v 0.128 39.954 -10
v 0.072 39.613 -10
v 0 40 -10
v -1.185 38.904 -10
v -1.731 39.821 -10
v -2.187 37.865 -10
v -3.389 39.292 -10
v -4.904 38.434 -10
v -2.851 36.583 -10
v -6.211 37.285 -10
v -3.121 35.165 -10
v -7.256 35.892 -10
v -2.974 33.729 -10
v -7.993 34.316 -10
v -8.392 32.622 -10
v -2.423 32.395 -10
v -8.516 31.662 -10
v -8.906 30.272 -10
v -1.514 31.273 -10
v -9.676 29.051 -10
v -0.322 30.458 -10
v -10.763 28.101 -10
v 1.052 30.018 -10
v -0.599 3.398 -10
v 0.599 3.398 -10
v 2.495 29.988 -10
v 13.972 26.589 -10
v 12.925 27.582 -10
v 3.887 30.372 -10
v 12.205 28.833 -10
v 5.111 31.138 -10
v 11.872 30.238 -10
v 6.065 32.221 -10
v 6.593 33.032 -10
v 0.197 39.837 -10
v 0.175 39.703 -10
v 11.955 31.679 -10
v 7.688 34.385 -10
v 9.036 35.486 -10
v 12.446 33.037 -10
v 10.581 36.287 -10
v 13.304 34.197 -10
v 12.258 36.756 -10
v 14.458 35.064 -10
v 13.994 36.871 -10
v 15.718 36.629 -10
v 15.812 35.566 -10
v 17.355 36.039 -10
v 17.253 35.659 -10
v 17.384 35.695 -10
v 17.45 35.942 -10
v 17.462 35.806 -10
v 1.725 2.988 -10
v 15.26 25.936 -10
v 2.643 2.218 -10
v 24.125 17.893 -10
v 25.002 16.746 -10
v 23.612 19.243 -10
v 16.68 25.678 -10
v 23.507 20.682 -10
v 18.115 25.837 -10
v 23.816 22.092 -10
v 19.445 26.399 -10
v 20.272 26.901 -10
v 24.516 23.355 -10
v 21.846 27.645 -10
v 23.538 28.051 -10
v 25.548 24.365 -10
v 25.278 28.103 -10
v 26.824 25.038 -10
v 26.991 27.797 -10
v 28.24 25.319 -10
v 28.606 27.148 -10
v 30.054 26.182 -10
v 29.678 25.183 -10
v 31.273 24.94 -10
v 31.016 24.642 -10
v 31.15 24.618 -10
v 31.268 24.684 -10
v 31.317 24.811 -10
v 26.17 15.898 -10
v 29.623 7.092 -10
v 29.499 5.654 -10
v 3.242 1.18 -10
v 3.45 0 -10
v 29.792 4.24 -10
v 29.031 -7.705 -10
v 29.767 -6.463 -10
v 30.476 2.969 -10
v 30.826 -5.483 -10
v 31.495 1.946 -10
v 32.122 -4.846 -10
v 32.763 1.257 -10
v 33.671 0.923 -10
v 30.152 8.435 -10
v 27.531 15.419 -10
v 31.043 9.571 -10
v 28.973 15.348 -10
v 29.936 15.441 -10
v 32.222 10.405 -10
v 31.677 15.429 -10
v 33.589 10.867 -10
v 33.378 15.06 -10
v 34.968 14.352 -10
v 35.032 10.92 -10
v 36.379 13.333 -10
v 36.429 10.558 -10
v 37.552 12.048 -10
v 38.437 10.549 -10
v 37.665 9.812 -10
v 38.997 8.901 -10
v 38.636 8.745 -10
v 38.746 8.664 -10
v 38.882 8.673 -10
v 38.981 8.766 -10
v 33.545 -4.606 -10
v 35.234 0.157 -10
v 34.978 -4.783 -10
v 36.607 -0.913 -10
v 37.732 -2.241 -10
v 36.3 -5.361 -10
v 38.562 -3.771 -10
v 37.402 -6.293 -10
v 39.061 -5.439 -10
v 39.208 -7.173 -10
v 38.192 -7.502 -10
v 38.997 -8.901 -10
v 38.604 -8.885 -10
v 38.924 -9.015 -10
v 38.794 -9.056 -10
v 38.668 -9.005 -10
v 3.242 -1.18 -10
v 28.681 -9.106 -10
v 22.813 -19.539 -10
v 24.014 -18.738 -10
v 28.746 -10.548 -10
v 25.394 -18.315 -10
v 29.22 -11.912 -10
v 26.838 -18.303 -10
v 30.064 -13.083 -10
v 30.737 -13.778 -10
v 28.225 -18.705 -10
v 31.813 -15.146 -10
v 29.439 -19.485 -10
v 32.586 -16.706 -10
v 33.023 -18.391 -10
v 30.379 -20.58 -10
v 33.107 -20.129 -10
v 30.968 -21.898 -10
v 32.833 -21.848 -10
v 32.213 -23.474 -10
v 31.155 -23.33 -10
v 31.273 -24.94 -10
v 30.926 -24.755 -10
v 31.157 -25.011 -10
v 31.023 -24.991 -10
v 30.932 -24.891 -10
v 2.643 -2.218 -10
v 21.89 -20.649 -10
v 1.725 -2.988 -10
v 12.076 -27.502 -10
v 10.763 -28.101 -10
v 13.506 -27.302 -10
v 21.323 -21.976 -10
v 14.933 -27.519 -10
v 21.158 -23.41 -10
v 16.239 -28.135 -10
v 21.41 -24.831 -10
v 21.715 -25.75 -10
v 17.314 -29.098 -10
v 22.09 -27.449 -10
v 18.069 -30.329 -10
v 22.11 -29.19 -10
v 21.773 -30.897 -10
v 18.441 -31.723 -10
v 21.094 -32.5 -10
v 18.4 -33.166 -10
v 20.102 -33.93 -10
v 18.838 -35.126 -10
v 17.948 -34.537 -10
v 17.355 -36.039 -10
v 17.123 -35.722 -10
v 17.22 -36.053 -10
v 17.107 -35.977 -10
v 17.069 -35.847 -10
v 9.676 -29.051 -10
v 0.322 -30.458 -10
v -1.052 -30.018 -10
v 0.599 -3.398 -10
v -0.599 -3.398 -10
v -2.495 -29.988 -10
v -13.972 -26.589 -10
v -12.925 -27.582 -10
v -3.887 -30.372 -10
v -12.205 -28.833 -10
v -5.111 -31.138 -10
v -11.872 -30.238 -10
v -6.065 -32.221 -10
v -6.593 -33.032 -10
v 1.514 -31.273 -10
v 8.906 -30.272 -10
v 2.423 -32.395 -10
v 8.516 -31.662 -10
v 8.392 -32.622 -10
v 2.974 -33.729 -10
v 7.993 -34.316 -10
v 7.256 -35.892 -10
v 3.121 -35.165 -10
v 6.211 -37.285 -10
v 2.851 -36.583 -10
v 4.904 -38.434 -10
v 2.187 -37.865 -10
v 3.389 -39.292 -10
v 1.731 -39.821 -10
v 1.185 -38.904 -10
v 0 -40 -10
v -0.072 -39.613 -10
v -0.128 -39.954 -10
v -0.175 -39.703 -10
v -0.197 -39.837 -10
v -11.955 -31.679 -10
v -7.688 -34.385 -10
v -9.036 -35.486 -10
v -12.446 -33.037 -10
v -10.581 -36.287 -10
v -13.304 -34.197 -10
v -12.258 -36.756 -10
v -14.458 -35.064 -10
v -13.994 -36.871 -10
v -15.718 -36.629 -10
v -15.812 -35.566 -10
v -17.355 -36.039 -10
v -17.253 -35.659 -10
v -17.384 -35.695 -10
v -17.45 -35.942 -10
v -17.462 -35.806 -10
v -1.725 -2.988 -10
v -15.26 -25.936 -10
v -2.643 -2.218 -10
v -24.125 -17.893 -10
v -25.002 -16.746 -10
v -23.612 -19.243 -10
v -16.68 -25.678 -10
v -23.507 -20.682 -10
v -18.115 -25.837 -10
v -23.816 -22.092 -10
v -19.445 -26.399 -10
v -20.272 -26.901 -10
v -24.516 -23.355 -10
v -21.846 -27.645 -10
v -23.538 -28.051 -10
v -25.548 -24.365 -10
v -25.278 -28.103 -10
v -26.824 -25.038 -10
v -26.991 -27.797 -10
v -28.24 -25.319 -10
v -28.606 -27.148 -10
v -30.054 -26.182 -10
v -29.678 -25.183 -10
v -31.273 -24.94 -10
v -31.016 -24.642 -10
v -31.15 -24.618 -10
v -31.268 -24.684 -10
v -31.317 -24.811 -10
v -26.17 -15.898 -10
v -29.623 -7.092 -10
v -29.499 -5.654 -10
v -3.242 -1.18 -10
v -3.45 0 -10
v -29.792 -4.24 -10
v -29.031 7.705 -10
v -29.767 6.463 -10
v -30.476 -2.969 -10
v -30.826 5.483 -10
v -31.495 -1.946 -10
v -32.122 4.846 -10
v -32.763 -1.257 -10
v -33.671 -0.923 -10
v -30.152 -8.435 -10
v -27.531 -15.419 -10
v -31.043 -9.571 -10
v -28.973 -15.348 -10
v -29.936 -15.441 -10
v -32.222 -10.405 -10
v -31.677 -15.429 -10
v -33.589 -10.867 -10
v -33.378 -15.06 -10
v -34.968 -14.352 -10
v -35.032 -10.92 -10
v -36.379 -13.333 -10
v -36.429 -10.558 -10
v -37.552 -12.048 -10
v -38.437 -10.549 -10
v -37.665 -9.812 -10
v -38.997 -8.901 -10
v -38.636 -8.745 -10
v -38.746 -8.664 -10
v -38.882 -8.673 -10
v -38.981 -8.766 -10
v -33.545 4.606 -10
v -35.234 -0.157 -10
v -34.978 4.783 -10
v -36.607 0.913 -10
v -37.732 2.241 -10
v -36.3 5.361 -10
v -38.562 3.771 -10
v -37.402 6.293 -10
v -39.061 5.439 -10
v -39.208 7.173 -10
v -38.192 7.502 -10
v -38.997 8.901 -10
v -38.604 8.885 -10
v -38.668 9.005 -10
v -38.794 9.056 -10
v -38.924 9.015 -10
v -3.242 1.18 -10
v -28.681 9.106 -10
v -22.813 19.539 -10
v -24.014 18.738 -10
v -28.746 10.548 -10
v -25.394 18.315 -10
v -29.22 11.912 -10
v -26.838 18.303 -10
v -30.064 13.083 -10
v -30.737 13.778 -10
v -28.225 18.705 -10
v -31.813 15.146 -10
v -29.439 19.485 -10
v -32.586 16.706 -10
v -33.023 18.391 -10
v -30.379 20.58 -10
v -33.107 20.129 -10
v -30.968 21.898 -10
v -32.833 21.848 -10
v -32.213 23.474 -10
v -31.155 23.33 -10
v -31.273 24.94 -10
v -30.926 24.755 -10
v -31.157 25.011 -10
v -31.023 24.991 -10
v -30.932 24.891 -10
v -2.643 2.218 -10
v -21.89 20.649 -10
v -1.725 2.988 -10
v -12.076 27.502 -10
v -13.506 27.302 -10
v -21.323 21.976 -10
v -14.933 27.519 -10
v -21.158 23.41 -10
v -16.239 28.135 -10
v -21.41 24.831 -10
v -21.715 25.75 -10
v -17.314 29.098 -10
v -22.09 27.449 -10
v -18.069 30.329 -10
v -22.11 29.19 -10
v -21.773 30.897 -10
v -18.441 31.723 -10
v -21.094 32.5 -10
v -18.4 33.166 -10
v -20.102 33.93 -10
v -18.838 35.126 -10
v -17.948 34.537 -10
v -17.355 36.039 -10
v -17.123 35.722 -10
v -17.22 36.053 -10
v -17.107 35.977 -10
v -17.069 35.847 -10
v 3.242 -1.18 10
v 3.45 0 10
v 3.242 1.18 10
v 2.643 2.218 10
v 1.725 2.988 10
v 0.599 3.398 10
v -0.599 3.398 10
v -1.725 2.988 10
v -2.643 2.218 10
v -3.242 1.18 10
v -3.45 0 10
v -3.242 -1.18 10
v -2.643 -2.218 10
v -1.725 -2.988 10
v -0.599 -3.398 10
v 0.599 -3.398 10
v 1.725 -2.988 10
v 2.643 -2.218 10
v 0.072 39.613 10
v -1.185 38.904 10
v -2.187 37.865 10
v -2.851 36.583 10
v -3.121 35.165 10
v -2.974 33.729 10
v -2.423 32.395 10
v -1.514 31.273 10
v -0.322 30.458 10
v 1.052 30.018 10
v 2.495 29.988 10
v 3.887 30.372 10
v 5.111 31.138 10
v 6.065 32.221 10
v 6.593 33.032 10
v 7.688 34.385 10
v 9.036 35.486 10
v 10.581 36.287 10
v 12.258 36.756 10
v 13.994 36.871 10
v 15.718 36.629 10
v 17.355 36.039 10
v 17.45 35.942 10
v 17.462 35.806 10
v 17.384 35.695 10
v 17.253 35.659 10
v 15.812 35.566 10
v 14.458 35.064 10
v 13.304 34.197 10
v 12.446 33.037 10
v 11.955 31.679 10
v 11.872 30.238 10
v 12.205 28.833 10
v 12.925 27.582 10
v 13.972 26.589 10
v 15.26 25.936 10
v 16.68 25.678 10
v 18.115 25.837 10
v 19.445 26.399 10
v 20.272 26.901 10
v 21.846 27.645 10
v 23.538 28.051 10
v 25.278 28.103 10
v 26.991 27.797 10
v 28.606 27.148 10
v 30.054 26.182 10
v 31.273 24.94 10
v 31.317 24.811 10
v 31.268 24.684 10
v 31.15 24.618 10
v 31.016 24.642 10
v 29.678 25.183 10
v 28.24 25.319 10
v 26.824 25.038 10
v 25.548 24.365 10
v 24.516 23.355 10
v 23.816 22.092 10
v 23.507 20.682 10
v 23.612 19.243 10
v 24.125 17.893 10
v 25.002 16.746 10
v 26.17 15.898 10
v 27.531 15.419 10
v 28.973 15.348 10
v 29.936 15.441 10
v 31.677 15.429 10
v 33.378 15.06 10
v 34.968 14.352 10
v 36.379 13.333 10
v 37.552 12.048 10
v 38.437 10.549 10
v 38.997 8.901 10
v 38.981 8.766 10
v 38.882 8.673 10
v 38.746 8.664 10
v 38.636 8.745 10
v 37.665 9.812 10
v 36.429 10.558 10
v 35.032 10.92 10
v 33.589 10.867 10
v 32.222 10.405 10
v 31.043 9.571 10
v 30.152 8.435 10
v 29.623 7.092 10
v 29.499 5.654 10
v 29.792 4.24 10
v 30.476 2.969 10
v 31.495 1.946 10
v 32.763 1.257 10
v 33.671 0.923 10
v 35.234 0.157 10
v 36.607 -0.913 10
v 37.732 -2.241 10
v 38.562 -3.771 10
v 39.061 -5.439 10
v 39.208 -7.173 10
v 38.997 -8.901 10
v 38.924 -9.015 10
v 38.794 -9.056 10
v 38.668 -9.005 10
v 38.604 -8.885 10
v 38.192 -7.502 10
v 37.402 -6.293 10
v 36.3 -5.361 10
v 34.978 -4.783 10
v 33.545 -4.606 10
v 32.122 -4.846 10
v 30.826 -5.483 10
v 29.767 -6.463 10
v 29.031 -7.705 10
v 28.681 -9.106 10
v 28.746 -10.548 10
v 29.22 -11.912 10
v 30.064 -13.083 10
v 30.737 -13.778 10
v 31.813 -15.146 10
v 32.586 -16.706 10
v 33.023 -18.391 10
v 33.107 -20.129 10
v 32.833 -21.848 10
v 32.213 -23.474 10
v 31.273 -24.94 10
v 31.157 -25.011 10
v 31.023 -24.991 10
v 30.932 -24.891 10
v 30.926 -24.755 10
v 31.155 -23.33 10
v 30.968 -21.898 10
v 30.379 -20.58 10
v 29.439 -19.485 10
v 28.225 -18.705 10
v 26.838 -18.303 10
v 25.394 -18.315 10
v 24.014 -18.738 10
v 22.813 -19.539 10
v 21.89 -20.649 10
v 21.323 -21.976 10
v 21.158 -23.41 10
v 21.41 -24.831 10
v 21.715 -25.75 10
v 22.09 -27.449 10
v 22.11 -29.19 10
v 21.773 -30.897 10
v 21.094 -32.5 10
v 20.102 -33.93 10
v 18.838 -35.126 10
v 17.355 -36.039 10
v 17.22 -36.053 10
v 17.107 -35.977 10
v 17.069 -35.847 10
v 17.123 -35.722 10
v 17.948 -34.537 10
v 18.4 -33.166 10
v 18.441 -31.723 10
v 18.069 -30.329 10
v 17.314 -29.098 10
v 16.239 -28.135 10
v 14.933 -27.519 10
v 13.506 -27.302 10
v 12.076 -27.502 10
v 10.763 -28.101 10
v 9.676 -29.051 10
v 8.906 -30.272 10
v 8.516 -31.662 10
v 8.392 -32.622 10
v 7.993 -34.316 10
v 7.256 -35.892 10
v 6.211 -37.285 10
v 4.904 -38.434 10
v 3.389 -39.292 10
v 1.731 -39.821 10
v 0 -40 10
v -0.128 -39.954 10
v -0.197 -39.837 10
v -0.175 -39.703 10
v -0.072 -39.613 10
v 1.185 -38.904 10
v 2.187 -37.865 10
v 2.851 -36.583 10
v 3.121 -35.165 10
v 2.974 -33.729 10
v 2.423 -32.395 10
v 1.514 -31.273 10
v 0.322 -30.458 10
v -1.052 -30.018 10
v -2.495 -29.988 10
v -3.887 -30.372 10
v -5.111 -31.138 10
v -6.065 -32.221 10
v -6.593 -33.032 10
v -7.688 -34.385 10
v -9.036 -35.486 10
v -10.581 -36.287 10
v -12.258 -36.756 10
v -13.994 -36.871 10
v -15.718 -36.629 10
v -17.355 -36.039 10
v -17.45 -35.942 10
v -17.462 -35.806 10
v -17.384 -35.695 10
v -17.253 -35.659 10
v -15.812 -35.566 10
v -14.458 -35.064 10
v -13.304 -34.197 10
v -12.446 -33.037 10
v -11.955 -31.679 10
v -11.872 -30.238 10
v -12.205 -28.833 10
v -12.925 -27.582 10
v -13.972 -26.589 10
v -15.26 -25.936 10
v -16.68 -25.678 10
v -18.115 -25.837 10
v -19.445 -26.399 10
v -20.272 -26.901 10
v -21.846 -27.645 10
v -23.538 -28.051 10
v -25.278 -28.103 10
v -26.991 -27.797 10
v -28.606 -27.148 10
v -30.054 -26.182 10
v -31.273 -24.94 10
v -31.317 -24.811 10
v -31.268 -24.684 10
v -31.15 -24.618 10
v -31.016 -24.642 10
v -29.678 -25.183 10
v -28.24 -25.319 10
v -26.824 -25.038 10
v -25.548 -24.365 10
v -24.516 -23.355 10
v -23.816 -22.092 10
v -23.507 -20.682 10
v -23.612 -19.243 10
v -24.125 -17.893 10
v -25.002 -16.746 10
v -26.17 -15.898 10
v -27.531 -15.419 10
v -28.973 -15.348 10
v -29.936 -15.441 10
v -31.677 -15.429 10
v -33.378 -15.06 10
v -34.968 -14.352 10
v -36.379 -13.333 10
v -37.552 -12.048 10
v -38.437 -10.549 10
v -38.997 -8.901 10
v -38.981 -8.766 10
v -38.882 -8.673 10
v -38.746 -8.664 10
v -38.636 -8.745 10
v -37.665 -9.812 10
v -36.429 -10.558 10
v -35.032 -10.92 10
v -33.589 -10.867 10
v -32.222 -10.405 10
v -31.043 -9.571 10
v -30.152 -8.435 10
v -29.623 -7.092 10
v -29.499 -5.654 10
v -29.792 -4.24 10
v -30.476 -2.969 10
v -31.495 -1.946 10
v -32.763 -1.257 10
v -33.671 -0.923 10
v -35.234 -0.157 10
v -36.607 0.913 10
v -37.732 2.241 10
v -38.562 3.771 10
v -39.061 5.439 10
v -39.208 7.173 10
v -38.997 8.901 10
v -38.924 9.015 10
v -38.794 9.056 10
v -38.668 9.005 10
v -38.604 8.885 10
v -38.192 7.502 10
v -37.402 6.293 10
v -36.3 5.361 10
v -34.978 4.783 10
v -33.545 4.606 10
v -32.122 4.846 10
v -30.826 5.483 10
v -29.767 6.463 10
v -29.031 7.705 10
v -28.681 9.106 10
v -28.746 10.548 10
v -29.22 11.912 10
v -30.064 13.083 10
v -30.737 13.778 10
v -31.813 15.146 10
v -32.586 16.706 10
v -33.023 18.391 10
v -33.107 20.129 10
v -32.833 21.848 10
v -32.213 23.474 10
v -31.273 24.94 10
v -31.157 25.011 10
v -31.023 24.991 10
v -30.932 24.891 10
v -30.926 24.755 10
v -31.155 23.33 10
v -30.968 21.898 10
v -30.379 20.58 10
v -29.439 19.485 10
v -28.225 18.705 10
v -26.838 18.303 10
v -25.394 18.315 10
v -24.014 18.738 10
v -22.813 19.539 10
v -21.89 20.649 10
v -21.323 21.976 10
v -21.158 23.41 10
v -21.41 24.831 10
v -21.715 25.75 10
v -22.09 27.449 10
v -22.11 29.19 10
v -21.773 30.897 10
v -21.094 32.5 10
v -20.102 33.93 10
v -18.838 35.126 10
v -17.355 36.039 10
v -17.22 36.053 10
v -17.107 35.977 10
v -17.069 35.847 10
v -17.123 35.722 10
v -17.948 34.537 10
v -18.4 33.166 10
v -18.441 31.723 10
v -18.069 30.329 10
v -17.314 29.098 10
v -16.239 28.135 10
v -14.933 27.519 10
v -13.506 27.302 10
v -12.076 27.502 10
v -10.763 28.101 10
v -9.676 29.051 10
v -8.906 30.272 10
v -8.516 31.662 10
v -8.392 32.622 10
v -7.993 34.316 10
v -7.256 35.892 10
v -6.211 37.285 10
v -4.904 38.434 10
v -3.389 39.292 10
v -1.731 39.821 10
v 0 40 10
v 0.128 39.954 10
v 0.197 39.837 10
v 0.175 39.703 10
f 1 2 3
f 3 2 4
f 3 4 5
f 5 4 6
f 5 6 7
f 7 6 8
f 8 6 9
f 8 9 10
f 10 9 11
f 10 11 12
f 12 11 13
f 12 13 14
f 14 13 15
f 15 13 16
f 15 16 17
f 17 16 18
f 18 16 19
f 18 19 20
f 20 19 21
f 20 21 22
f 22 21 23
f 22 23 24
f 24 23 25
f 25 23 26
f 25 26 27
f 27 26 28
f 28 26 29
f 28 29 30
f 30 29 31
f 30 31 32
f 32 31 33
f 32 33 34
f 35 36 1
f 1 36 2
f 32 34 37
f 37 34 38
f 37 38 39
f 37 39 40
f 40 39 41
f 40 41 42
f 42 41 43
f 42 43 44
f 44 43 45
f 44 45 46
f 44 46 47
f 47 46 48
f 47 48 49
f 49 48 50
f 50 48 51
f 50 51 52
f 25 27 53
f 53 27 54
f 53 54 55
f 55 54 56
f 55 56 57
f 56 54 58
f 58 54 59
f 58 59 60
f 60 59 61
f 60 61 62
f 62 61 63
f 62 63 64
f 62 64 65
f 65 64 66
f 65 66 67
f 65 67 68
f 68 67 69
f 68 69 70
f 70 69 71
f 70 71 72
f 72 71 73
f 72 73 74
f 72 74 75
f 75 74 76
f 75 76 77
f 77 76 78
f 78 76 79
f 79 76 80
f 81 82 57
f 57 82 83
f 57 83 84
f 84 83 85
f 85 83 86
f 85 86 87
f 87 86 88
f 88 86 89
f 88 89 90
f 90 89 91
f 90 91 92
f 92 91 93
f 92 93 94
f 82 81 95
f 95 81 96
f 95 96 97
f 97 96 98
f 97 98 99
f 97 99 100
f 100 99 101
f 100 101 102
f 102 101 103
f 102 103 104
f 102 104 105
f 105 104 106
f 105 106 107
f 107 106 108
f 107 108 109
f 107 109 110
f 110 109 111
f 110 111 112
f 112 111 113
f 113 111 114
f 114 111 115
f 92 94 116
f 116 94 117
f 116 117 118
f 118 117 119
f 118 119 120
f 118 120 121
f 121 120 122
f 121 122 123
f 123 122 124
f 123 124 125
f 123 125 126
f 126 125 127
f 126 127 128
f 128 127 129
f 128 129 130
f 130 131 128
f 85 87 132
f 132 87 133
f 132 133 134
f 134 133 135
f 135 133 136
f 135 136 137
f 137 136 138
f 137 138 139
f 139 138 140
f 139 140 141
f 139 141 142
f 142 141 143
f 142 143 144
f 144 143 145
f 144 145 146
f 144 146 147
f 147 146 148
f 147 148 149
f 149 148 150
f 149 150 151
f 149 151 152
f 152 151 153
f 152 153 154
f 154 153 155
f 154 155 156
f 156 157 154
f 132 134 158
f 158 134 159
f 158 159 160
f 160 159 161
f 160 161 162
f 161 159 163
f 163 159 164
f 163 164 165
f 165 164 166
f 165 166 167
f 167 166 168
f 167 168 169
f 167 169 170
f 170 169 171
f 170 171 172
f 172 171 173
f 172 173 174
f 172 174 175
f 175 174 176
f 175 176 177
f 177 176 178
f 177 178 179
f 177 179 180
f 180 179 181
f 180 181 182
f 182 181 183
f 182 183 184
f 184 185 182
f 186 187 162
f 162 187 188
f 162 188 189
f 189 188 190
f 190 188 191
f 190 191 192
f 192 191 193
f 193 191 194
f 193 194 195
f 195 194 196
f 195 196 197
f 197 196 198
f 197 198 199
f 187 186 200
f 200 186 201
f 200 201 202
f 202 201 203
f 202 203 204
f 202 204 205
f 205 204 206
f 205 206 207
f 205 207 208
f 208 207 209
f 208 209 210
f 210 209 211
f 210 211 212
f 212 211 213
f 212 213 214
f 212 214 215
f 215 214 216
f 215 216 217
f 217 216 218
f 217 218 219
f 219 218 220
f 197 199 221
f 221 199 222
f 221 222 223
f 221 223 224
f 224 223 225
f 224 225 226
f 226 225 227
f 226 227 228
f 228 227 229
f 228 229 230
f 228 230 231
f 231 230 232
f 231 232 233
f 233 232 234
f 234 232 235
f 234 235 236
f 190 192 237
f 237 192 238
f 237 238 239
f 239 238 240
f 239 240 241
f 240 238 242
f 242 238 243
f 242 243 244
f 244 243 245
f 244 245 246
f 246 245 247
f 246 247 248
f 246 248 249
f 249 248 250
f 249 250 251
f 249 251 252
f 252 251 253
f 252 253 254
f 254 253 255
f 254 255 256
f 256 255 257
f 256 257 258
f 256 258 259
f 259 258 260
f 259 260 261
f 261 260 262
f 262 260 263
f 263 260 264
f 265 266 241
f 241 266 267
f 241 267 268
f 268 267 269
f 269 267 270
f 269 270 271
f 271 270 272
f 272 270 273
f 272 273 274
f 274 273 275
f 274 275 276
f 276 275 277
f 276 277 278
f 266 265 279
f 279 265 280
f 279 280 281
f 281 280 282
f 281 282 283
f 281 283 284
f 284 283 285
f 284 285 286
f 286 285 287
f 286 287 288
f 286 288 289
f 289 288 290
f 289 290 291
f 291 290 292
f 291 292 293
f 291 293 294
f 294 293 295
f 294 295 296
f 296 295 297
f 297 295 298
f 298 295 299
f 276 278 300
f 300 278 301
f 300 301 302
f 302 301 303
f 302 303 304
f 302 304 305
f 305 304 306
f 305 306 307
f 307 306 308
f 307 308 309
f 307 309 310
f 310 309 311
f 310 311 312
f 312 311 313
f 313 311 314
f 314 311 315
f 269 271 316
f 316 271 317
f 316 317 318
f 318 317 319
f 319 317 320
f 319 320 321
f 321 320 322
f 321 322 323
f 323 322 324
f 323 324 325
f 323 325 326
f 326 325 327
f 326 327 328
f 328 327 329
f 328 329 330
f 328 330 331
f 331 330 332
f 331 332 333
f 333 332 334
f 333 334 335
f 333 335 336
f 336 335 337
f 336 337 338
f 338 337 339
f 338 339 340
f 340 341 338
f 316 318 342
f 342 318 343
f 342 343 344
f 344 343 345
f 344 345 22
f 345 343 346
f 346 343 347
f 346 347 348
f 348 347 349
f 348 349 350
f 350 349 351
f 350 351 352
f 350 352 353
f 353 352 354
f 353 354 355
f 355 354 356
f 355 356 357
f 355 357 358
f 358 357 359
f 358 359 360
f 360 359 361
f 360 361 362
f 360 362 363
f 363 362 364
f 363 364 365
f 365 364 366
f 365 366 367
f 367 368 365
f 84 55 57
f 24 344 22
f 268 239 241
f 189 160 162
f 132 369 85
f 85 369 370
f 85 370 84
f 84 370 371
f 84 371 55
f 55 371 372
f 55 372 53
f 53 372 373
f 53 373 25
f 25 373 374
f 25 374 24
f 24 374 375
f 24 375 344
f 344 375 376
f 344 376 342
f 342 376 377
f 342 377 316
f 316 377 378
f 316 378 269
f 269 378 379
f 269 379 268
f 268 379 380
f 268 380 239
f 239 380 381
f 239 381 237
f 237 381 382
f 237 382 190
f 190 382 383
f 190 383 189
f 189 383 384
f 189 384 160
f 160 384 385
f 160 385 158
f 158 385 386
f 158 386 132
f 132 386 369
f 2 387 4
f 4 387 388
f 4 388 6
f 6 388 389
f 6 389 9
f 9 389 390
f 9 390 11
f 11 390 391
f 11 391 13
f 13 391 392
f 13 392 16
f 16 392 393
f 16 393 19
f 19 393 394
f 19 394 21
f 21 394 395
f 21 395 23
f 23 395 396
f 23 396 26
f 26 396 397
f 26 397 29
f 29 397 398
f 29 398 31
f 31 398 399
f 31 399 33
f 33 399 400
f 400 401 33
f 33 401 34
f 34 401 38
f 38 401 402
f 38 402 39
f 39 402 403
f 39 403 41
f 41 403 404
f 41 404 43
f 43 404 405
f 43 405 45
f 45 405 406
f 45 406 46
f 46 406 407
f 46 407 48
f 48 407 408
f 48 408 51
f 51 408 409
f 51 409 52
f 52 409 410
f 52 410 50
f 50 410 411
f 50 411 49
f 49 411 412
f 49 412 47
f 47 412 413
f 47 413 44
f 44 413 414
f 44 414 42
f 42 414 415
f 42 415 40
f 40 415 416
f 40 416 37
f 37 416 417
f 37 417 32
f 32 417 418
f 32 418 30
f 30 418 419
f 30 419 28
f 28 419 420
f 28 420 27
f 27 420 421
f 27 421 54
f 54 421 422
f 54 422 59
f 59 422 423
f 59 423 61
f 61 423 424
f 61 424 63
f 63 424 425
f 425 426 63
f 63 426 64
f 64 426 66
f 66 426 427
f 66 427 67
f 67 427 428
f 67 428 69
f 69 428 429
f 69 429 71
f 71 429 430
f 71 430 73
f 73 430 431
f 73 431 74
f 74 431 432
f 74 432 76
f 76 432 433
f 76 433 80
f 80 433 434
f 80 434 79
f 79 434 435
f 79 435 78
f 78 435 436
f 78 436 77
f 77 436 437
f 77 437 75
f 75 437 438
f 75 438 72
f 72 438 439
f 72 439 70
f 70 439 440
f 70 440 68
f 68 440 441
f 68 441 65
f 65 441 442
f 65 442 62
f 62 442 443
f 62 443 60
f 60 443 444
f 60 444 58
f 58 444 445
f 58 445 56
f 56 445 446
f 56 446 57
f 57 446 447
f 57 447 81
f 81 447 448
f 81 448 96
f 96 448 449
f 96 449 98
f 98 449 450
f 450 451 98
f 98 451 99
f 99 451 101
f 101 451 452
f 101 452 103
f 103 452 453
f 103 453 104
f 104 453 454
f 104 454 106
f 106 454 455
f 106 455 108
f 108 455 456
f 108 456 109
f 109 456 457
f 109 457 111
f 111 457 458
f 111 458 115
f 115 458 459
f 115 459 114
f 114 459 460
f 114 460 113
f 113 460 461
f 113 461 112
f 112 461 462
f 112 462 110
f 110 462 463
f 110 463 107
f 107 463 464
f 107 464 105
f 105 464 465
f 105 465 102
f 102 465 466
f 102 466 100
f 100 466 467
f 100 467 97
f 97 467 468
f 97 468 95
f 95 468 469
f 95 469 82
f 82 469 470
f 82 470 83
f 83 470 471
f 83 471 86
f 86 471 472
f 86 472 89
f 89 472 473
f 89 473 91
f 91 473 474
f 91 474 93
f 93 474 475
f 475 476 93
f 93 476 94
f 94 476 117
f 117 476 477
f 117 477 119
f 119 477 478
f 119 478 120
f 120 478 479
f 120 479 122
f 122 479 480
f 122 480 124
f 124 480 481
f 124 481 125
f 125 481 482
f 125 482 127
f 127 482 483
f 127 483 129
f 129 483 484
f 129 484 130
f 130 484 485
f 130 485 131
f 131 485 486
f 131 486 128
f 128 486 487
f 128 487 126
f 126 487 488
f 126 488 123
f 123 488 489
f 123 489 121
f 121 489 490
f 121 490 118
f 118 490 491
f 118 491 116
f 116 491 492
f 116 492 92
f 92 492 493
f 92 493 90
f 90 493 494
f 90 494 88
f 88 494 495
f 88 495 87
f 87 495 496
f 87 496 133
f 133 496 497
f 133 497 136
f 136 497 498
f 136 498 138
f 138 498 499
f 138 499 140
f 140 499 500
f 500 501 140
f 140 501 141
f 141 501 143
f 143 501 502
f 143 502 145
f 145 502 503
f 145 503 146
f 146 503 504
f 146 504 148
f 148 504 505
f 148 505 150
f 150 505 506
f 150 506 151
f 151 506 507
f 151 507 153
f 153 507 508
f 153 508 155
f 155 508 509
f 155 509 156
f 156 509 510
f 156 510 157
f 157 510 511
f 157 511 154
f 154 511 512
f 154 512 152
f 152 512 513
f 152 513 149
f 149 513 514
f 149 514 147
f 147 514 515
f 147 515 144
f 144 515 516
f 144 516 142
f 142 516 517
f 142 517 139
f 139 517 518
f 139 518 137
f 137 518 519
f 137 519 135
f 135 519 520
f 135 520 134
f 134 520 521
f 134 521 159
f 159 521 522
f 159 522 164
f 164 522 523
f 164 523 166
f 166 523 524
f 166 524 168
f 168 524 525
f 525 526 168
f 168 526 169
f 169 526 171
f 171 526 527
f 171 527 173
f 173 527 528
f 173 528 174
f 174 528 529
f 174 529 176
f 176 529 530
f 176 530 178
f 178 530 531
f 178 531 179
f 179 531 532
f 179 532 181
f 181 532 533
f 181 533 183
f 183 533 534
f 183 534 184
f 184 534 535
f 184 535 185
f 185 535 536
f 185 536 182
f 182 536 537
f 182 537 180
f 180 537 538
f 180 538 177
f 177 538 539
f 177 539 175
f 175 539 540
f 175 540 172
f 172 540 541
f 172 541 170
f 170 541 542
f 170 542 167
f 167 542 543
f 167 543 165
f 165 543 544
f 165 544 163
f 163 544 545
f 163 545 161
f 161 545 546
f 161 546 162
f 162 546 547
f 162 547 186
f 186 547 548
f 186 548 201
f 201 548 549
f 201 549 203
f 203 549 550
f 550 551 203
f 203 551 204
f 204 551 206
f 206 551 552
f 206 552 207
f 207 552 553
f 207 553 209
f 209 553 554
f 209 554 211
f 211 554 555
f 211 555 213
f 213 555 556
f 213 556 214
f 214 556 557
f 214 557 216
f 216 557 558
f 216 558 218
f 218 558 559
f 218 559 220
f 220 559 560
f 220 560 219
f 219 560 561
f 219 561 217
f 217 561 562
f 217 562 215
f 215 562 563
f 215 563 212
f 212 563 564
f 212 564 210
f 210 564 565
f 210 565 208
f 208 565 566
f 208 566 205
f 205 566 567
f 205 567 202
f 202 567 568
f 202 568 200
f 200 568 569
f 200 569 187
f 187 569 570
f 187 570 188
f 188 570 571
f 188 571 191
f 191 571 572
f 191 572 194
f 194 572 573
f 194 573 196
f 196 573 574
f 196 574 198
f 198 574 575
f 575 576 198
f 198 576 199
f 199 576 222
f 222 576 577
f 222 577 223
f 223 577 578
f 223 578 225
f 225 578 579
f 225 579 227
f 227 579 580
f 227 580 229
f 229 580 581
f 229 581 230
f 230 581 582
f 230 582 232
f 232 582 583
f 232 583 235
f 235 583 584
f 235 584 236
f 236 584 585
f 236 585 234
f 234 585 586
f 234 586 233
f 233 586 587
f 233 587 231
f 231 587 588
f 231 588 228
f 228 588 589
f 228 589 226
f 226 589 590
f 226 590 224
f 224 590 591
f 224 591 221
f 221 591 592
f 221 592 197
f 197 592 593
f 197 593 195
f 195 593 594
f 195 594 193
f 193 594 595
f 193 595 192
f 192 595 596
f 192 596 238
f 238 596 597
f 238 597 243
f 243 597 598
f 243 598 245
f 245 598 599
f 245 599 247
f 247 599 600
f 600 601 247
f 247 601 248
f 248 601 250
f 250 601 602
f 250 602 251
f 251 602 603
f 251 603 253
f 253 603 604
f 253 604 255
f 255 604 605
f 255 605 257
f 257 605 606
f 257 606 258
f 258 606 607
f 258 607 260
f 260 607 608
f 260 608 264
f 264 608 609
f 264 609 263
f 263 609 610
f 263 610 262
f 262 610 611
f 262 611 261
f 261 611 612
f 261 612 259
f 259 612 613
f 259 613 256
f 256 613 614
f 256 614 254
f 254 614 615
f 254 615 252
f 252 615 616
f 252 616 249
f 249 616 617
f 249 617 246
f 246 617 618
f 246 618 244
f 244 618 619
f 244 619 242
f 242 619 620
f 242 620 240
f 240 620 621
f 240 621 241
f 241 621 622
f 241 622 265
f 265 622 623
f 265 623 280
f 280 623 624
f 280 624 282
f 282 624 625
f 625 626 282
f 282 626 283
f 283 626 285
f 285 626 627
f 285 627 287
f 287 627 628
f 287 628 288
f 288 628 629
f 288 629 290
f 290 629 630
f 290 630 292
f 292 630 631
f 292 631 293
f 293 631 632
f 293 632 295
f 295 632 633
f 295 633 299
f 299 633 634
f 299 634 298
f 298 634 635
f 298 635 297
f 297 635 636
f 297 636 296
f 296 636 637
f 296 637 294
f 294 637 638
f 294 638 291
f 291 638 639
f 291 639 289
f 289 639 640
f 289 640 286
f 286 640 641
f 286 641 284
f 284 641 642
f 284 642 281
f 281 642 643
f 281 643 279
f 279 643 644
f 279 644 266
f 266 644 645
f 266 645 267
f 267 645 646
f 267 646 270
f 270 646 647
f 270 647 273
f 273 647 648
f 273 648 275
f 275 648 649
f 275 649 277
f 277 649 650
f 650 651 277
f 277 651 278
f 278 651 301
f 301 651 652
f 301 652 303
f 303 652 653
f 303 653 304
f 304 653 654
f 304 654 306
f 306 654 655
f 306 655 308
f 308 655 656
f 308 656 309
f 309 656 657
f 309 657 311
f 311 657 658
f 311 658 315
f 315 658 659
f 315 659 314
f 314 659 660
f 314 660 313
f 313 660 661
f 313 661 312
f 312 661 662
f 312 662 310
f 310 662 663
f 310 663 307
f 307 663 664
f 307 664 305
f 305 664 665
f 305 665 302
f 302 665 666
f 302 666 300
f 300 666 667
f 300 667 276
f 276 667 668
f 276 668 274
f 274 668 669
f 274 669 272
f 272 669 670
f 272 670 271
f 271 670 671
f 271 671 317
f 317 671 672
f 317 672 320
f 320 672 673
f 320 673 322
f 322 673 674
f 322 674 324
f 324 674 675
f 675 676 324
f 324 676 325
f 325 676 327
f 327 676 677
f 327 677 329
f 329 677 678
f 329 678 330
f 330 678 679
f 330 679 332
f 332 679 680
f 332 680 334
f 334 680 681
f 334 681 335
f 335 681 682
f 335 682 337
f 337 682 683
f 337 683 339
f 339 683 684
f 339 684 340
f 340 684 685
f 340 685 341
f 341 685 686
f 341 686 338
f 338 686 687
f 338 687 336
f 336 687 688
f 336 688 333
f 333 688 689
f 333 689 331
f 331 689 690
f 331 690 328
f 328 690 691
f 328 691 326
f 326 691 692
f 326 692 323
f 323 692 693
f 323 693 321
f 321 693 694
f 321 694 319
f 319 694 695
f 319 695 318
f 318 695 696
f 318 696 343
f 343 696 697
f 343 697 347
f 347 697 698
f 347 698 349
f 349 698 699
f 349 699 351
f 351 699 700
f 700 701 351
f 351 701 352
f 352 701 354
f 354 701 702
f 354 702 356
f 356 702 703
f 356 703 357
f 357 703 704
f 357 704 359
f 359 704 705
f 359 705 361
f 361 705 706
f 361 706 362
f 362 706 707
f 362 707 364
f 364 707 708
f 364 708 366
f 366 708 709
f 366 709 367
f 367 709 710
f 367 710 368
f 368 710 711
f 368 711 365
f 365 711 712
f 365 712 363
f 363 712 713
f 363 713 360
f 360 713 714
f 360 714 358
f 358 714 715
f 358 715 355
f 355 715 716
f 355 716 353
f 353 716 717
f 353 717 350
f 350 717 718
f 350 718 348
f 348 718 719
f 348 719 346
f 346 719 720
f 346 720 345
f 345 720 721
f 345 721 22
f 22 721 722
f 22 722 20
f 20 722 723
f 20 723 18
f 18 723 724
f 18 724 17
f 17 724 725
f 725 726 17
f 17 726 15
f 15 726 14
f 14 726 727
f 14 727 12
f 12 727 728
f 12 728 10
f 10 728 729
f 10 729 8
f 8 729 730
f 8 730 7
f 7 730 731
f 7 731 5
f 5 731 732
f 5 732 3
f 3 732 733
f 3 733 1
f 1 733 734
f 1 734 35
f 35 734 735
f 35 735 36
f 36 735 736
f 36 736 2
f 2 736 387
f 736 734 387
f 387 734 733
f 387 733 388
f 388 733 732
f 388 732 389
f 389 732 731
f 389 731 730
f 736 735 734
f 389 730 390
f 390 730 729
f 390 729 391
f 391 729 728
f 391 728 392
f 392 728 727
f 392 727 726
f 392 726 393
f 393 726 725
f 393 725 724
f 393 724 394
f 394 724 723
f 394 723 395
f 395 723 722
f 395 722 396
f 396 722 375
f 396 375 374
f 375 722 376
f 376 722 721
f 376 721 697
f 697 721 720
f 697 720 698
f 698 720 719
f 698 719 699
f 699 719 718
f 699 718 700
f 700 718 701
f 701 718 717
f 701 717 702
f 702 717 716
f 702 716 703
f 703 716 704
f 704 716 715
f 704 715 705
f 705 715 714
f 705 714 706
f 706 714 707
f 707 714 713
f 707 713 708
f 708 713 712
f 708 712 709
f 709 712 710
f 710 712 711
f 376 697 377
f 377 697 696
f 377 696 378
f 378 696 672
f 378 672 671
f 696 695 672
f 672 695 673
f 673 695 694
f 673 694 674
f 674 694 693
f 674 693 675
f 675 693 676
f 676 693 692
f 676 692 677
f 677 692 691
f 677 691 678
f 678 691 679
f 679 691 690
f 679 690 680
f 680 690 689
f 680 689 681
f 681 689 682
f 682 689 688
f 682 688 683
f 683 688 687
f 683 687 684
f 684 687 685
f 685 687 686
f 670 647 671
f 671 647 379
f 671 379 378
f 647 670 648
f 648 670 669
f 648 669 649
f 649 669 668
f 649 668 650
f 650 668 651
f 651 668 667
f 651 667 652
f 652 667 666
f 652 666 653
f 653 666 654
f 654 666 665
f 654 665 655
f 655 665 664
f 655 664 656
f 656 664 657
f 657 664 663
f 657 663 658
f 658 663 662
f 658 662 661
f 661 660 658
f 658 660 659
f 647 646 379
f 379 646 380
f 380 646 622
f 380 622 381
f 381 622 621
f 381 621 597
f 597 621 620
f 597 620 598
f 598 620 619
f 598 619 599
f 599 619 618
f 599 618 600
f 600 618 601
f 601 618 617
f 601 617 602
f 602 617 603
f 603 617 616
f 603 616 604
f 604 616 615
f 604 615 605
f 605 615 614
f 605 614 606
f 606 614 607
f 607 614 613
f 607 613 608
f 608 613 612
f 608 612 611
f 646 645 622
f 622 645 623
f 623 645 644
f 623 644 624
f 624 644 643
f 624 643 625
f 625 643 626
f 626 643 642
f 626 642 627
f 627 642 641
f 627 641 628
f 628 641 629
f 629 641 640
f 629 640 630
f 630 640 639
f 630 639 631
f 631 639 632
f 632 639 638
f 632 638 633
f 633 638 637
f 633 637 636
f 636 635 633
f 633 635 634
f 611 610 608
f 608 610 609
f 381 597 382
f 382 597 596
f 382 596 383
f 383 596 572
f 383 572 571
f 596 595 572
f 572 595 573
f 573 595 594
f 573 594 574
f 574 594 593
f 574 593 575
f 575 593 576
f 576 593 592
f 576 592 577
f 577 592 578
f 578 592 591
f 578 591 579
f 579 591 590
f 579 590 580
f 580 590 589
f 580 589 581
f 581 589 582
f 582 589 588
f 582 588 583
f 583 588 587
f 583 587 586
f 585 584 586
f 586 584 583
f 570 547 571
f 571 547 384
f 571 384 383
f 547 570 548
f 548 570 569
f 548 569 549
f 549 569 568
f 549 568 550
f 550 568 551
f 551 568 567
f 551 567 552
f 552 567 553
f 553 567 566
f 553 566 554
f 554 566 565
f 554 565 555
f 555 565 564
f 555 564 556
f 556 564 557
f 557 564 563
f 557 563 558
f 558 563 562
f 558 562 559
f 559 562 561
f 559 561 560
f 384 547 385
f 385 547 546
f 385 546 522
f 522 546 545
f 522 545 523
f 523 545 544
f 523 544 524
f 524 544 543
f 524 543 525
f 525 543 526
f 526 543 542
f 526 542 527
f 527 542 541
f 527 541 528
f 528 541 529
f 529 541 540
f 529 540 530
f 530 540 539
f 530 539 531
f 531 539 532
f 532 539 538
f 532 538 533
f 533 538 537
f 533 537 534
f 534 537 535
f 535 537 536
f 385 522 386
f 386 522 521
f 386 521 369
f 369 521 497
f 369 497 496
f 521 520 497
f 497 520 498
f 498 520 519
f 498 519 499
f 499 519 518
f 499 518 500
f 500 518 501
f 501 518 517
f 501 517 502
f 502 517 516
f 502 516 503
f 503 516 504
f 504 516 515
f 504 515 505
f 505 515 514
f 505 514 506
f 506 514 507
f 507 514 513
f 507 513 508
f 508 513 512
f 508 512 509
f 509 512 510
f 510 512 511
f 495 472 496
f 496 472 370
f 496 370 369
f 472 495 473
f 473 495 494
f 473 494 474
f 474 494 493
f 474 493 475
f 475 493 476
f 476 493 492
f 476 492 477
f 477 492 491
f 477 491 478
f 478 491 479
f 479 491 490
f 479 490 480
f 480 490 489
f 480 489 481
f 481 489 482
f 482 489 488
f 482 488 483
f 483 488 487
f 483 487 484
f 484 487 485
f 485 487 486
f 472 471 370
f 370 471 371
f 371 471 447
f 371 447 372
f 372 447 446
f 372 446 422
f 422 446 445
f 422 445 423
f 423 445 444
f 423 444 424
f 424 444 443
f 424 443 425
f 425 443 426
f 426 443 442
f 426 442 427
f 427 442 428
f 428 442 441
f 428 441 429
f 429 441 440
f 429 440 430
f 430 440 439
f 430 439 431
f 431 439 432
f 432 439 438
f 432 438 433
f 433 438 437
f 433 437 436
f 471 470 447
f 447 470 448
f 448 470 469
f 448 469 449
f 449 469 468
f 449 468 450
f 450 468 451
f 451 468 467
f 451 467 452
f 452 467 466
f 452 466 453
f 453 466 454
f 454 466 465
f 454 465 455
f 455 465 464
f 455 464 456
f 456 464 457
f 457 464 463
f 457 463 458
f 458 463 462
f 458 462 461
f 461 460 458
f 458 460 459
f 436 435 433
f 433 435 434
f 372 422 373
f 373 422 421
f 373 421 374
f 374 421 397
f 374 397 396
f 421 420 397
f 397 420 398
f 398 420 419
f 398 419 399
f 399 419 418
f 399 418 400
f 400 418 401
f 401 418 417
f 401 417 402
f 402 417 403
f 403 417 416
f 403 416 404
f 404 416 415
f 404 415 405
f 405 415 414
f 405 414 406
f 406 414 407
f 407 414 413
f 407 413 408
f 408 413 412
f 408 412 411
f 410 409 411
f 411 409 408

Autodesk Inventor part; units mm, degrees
ref_plane "YZ Plane" through (0, 0, 0) normal (1, 0, 0) x (0, 1, 0)
ref_plane "XZ Plane" through (0, 0, 0) normal (0, 1, 0) x (-1, 0, 0)
ref_plane "XY Plane" through (0, 0, 0) normal (0, 0, 1) x (1, 0, 0)
sketch "Sketch1" plane through (0, 0, 0) normal (0, 0, 1) x (1, 0, 0)
  circle A0 centre (0, 0) radius 40 construction
  circle A1 centre (0, 0) radius 30 construction
  arc A2 (0.0721, 39.6135) -> (0, 40) centre (0, 39.8) ccw
  arc A3 (0.0721, 39.6135) -> (6.0648, 32.2214) centre (1.8749, 34.9497) ccw
  line L0 (6.0648, 32.2214) -> (6.5929, 33.0323)
  line L1 (1.607, 29.9569) -> (7.607, 29.6351) construction
  arc A4 (0, 40) -> (-8.3922, 32.6216) centre (0, 31.5381) ccw
  arc A5 (-17.1227, 35.7218) -> (-17.3553, 36.0388) centre (-17.2686, 35.8586) ccw
  arc A6 (-17.1227, 35.7218) -> (-8.5161, 31.6619) centre (-13.4749, 32.3021) ccw
  line L2 (-8.5161, 31.6619) -> (-8.3922, 32.6216)
  arc A7 (-17.3553, 36.0388) -> (-21.7151, 25.7498) centre (-13.6839, 28.4149) ccw
  arc A8 (-30.9261, 24.755) -> (-31.2733, 24.9396) centre (-31.1169, 24.8149) ccw
  arc A9 (-30.9261, 24.755) -> (-21.4103, 24.8314) centre (-26.1559, 23.2566) ccw
  line L3 (-21.4103, 24.8314) -> (-21.7151, 25.7498)
  arc A10 (-31.2733, 24.9396) -> (-30.7371, 13.778) centre (-24.6575, 19.6637) ccw
  arc A11 (-38.6042, 8.8851) -> (-38.9971, 8.9008) centre (-38.8021, 8.8563) ccw
  arc A12 (-38.6042, 8.8851) -> (-30.064, 13.0827) centre (-33.6563, 9.6049) ccw
  line L4 (-30.064, 13.0827) -> (-30.7371, 13.778)
  arc A13 (-38.9971, 8.9008) -> (-33.6712, -0.9228) centre (-30.7474, 7.0179) ccw
  arc A14 (-38.6363, -8.7445) -> (-38.9971, -8.9008) centre (-38.8021, -8.8563) ccw
  arc A15 (-38.6363, -8.7445) -> (-32.7631, -1.2571) centre (-34.4907, -5.9492) ccw
  line L5 (-32.7631, -1.2571) -> (-33.6712, -0.9228)
  arc A16 (-38.9971, -8.9008) -> (-29.9363, -15.4408) centre (-30.7474, -7.0179) ccw
  arc A17 (-31.016, -24.6422) -> (-31.2733, -24.9396) centre (-31.1169, -24.8149) ccw
  arc A18 (-31.016, -24.6422) -> (-28.9731, -15.348) centre (-28.4938, -20.325) ccw
  line L6 (-28.9731, -15.348) -> (-29.9363, -15.4408)
  arc A19 (-31.2733, -24.9396) -> (-20.2721, -26.9005) centre (-24.6575, -19.6637) ccw
  arc A20 (-17.2526, -35.6592) -> (-17.3553, -36.0388) centre (-17.2686, -35.8586) ccw
  arc A21 (-17.2526, -35.6592) -> (-19.4446, -26.399) centre (-16.8533, -30.6752) ccw
  line L7 (-19.4446, -26.399) -> (-20.2721, -26.9005)
  arc A22 (-17.3553, -36.0388) -> (-6.5929, -33.0323) centre (-13.6839, -28.4149) ccw
  arc A23 (-0.0721, -39.6135) -> (0, -40) centre (0, -39.8) ccw
  arc A24 (-0.0721, -39.6135) -> (-6.0648, -32.2214) centre (-1.8749, -34.9497) ccw
  line L8 (-6.0648, -32.2214) -> (-6.5929, -33.0323)
  arc A25 (0, -40) -> (8.3922, -32.6216) centre (0, -31.5381) ccw
  arc A26 (17.1227, -35.7218) -> (17.3553, -36.0388) centre (17.2686, -35.8586) ccw
  arc A27 (17.1227, -35.7218) -> (8.5161, -31.6619) centre (13.4749, -32.3021) ccw
  line L9 (8.5161, -31.6619) -> (8.3922, -32.6216)
  arc A28 (17.3553, -36.0388) -> (21.7151, -25.7498) centre (13.6839, -28.4149) ccw
  arc A29 (30.9261, -24.755) -> (31.2733, -24.9396) centre (31.1169, -24.8149) ccw
  arc A30 (30.9261, -24.755) -> (21.4103, -24.8314) centre (26.1559, -23.2566) ccw
  line L10 (21.4103, -24.8314) -> (21.7151, -25.7498)
  arc A31 (31.2733, -24.9396) -> (30.7371, -13.778) centre (24.6575, -19.6637) ccw
  arc A32 (38.6042, -8.8851) -> (38.9971, -8.9008) centre (38.8021, -8.8563) ccw
  arc A33 (38.6042, -8.8851) -> (30.064, -13.0827) centre (33.6563, -9.6049) ccw
  line L11 (30.064, -13.0827) -> (30.7371, -13.778)
  arc A34 (38.9971, -8.9008) -> (33.6712, 0.9228) centre (30.7474, -7.0179) ccw
  arc A35 (38.6363, 8.7445) -> (38.9971, 8.9008) centre (38.8021, 8.8563) ccw
  arc A36 (38.6363, 8.7445) -> (32.7631, 1.2571) centre (34.4907, 5.9492) ccw
  line L12 (32.7631, 1.2571) -> (33.6712, 0.9228)
  arc A37 (38.9971, 8.9008) -> (29.9363, 15.4408) centre (30.7474, 7.0179) ccw
  arc A38 (31.016, 24.6422) -> (31.2733, 24.9396) centre (31.1169, 24.8149) ccw
  arc A39 (31.016, 24.6422) -> (28.9731, 15.348) centre (28.4938, 20.325) ccw
  line L13 (28.9731, 15.348) -> (29.9363, 15.4408)
  arc A40 (31.2733, 24.9396) -> (20.2721, 26.9005) centre (24.6575, 19.6637) ccw
  arc A41 (17.2526, 35.6592) -> (17.3553, 36.0388) centre (17.2686, 35.8586) ccw
  arc A42 (17.2526, 35.6592) -> (19.4446, 26.399) centre (16.8533, 30.6752) ccw
  line L14 (19.4446, 26.399) -> (20.2721, 26.9005)
  arc A43 (17.3553, 36.0388) -> (6.5929, 33.0323) centre (13.6839, 28.4149) ccw
  circle A44 centre (0, 0) radius 3.45
  point P0 (-11.55, 27.6875)
  point P1 (-22.4193, 19.9343)
  point P2 (-28.8483, 8.2328)
  point P3 (-29.5634, -5.0993)
  point P4 (-24.4232, -17.4214)
  point P5 (-14.4457, -26.293)
  point P6 (-1.607, -29.9569)
  point P7 (11.55, -27.6875)
  point P8 (22.4193, -19.9343)
  point P9 (28.8483, -8.2328)
  point P10 (29.5634, 5.0993)
  point P11 (24.4232, 17.4214)
  point P12 (14.4457, 26.293)
  point P13 (-8.3922, 32.6216)
  point P14 (-21.7151, 25.7498)
  point P15 (-30.7371, 13.778)
  point P16 (-33.6712, -0.9228)
  point P17 (-29.9363, -15.4408)
  point P18 (-6.5929, -33.0323)
  point P19 (8.3922, -32.6216)
  point P20 (30.7371, -13.778)
  point P21 (33.6712, 0.9228)
  point P22 (29.9363, 15.4408)
  point P23 (20.2721, 26.9005)
  dimension "d14" = 60
  dimension "d6" = 80
  dimension "d16" = 0.2
  dimension "d22" = 5
  dimension "d23" = 60
  dimension "d28" = 6
  dimension "d31" = 360
  dimension "d33" = 6.9
extrude "Extrusion1" add sketch "Sketch1" along normal mid plane 20
properties part number "Turbine"
